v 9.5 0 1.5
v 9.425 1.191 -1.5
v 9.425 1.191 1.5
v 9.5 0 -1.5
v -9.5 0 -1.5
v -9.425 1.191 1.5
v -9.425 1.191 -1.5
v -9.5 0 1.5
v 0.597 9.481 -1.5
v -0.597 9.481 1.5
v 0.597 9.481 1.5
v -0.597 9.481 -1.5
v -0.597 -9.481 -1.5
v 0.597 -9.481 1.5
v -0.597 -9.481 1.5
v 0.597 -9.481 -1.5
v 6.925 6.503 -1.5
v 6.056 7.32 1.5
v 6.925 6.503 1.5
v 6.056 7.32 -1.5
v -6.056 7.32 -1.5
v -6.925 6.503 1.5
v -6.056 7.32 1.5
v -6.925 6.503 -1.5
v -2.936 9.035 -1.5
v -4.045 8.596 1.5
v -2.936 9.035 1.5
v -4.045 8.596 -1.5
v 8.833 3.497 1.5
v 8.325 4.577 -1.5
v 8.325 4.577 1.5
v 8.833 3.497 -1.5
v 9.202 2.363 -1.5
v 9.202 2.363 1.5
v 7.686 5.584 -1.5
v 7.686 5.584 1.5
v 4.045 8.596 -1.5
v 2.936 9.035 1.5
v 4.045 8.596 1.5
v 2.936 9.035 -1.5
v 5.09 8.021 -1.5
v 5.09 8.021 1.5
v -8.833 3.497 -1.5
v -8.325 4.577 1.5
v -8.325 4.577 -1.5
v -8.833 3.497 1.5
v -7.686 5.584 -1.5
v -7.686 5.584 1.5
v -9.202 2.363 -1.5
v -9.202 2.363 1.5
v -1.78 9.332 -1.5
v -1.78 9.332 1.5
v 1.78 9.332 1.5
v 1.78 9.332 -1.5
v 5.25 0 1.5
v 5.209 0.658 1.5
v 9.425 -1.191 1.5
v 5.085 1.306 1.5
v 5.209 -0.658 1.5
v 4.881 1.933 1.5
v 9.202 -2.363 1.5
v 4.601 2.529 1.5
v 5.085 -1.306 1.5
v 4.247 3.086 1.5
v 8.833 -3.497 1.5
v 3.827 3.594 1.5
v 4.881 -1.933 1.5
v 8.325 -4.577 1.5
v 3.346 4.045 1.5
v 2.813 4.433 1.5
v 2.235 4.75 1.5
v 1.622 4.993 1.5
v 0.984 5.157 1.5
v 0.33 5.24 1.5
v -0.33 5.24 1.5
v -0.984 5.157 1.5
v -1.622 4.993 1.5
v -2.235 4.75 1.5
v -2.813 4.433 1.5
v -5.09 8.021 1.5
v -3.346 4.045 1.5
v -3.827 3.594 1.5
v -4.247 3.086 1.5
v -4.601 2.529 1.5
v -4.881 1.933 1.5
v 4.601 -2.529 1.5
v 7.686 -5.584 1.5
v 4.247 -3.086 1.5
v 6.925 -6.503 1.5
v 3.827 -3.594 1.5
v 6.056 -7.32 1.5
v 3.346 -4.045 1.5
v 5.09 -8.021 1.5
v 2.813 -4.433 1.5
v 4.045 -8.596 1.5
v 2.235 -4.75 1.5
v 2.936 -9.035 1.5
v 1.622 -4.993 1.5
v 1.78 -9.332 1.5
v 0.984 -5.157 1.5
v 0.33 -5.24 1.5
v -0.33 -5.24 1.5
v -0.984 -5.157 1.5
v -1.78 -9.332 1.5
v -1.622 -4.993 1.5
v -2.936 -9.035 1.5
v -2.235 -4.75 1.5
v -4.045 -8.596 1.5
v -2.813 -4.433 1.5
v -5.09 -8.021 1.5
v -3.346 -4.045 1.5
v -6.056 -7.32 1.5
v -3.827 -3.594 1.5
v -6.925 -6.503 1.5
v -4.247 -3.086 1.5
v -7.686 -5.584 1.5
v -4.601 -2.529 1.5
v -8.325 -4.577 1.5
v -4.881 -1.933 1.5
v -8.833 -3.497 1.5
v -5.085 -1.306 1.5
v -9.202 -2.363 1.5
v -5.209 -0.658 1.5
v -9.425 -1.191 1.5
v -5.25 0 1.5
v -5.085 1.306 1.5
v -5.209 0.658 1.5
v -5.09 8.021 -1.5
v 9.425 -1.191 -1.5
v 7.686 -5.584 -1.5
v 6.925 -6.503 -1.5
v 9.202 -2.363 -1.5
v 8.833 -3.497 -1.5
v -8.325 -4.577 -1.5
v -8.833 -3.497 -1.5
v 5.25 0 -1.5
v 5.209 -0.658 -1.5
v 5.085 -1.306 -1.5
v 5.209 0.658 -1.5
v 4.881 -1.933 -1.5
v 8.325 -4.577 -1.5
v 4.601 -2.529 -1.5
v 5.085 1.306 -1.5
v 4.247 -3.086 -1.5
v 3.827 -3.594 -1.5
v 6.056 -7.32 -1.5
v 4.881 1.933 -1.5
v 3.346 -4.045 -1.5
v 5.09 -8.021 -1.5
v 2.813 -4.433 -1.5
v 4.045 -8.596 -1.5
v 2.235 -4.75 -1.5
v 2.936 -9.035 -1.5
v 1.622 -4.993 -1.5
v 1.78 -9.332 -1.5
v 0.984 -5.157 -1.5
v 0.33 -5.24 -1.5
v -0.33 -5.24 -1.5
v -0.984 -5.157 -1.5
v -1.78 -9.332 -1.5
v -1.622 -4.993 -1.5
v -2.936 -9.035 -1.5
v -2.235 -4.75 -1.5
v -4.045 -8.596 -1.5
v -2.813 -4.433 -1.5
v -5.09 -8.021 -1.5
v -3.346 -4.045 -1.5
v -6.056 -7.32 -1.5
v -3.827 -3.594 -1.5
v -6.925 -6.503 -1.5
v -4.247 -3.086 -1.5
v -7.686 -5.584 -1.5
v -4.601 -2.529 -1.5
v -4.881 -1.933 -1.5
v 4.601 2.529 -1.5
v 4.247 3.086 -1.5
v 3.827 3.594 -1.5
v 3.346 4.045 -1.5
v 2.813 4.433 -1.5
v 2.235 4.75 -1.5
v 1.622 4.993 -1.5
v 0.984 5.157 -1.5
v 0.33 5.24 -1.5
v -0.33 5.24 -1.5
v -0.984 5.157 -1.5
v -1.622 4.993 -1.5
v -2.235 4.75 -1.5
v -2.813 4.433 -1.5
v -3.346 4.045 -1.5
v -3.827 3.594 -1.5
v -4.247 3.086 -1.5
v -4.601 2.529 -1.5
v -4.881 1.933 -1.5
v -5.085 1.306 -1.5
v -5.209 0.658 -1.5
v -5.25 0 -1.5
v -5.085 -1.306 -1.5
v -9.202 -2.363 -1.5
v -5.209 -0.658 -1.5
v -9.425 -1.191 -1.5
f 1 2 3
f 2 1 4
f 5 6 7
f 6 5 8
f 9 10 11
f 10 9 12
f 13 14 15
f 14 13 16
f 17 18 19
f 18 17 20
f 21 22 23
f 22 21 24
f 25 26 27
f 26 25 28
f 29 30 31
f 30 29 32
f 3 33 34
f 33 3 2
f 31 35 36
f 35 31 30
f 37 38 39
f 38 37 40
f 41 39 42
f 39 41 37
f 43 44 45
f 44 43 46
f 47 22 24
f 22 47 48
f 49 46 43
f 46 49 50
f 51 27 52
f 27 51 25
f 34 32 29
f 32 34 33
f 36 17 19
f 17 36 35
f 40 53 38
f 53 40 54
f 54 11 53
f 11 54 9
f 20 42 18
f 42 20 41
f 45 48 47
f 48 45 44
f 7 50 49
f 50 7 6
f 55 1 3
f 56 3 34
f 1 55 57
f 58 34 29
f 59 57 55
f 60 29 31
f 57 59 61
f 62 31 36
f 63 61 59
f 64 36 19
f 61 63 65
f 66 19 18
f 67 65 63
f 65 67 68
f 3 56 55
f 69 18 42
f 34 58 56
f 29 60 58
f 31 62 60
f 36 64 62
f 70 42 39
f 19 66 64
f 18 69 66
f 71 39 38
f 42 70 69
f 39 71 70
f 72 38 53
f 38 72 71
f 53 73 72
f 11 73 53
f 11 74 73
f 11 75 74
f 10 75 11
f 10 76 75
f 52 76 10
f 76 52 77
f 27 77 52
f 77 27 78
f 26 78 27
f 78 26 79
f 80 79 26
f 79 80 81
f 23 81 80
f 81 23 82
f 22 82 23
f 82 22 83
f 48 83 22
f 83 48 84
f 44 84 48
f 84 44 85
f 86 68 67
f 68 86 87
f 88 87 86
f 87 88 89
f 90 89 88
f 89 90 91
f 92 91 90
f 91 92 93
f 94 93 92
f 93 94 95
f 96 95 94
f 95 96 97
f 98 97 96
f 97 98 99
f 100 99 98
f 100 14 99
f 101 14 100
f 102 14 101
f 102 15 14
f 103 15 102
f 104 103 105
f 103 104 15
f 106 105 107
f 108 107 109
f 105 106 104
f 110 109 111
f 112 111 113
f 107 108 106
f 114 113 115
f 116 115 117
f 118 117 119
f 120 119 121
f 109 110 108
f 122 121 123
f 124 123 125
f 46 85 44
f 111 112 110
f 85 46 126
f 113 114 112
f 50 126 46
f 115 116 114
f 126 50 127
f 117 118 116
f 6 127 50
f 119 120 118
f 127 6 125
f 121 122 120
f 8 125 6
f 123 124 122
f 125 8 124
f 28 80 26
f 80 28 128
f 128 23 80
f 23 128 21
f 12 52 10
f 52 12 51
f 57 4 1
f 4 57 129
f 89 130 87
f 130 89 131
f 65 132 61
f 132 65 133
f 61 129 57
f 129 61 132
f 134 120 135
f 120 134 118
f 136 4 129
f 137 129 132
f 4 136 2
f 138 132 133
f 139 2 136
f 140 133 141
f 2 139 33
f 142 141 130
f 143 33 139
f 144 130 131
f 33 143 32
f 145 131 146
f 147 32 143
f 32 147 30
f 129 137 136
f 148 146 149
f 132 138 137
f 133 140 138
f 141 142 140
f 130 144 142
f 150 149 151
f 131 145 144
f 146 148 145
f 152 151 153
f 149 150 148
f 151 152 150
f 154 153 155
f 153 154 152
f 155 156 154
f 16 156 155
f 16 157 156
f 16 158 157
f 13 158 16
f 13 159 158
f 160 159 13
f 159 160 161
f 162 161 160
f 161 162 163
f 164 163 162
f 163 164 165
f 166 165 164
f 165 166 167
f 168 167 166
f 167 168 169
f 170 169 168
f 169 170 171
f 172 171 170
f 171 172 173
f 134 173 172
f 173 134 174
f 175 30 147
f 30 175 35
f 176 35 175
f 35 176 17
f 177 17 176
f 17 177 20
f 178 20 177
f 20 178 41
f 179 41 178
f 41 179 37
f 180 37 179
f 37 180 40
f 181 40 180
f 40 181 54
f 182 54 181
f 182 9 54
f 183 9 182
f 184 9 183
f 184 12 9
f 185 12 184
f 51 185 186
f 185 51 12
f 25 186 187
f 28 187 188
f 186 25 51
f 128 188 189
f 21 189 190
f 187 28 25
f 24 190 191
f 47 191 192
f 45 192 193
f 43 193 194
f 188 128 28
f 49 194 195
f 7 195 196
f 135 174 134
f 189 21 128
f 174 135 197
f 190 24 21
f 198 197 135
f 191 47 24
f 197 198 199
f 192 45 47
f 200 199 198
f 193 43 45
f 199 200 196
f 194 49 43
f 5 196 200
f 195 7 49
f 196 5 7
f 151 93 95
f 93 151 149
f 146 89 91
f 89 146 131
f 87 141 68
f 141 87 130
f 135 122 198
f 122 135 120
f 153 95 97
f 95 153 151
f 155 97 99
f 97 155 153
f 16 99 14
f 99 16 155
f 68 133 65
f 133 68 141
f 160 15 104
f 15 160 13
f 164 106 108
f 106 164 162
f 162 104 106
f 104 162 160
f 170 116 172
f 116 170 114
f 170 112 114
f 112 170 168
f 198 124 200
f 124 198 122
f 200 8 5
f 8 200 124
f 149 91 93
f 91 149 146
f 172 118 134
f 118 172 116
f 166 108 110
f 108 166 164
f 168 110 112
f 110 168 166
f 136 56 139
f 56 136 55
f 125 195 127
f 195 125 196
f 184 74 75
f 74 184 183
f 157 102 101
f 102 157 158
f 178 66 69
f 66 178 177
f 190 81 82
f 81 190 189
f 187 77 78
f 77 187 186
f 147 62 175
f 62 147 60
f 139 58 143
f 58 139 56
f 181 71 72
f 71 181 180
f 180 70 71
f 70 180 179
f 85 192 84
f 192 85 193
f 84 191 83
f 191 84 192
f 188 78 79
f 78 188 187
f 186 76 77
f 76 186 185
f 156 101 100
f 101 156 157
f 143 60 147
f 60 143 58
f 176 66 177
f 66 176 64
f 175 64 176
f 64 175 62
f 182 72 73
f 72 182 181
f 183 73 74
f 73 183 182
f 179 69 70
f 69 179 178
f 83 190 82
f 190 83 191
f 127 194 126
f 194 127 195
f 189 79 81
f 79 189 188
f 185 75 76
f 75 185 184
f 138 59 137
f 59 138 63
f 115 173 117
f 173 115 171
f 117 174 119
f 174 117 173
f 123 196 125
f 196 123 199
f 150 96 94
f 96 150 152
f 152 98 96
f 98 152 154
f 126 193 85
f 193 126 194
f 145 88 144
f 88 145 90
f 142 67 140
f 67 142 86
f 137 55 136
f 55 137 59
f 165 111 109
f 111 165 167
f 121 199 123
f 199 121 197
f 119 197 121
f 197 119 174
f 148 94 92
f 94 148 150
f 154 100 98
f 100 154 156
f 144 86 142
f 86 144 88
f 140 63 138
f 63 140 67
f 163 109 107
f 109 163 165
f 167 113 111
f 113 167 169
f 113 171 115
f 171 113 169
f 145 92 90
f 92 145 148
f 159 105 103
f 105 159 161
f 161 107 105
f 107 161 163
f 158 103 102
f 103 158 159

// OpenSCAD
$fn = 50;


difference() {
	union() {
		translate(v = [0, 0, -1.5000000000]) {
			cylinder(h = 3, r = 9.5000000000);
		}
	}
	union() {
		translate(v = [0, 0, -100.0000000000]) {
			cylinder(h = 200, r = 5.2500000000);
		}
	}
}
